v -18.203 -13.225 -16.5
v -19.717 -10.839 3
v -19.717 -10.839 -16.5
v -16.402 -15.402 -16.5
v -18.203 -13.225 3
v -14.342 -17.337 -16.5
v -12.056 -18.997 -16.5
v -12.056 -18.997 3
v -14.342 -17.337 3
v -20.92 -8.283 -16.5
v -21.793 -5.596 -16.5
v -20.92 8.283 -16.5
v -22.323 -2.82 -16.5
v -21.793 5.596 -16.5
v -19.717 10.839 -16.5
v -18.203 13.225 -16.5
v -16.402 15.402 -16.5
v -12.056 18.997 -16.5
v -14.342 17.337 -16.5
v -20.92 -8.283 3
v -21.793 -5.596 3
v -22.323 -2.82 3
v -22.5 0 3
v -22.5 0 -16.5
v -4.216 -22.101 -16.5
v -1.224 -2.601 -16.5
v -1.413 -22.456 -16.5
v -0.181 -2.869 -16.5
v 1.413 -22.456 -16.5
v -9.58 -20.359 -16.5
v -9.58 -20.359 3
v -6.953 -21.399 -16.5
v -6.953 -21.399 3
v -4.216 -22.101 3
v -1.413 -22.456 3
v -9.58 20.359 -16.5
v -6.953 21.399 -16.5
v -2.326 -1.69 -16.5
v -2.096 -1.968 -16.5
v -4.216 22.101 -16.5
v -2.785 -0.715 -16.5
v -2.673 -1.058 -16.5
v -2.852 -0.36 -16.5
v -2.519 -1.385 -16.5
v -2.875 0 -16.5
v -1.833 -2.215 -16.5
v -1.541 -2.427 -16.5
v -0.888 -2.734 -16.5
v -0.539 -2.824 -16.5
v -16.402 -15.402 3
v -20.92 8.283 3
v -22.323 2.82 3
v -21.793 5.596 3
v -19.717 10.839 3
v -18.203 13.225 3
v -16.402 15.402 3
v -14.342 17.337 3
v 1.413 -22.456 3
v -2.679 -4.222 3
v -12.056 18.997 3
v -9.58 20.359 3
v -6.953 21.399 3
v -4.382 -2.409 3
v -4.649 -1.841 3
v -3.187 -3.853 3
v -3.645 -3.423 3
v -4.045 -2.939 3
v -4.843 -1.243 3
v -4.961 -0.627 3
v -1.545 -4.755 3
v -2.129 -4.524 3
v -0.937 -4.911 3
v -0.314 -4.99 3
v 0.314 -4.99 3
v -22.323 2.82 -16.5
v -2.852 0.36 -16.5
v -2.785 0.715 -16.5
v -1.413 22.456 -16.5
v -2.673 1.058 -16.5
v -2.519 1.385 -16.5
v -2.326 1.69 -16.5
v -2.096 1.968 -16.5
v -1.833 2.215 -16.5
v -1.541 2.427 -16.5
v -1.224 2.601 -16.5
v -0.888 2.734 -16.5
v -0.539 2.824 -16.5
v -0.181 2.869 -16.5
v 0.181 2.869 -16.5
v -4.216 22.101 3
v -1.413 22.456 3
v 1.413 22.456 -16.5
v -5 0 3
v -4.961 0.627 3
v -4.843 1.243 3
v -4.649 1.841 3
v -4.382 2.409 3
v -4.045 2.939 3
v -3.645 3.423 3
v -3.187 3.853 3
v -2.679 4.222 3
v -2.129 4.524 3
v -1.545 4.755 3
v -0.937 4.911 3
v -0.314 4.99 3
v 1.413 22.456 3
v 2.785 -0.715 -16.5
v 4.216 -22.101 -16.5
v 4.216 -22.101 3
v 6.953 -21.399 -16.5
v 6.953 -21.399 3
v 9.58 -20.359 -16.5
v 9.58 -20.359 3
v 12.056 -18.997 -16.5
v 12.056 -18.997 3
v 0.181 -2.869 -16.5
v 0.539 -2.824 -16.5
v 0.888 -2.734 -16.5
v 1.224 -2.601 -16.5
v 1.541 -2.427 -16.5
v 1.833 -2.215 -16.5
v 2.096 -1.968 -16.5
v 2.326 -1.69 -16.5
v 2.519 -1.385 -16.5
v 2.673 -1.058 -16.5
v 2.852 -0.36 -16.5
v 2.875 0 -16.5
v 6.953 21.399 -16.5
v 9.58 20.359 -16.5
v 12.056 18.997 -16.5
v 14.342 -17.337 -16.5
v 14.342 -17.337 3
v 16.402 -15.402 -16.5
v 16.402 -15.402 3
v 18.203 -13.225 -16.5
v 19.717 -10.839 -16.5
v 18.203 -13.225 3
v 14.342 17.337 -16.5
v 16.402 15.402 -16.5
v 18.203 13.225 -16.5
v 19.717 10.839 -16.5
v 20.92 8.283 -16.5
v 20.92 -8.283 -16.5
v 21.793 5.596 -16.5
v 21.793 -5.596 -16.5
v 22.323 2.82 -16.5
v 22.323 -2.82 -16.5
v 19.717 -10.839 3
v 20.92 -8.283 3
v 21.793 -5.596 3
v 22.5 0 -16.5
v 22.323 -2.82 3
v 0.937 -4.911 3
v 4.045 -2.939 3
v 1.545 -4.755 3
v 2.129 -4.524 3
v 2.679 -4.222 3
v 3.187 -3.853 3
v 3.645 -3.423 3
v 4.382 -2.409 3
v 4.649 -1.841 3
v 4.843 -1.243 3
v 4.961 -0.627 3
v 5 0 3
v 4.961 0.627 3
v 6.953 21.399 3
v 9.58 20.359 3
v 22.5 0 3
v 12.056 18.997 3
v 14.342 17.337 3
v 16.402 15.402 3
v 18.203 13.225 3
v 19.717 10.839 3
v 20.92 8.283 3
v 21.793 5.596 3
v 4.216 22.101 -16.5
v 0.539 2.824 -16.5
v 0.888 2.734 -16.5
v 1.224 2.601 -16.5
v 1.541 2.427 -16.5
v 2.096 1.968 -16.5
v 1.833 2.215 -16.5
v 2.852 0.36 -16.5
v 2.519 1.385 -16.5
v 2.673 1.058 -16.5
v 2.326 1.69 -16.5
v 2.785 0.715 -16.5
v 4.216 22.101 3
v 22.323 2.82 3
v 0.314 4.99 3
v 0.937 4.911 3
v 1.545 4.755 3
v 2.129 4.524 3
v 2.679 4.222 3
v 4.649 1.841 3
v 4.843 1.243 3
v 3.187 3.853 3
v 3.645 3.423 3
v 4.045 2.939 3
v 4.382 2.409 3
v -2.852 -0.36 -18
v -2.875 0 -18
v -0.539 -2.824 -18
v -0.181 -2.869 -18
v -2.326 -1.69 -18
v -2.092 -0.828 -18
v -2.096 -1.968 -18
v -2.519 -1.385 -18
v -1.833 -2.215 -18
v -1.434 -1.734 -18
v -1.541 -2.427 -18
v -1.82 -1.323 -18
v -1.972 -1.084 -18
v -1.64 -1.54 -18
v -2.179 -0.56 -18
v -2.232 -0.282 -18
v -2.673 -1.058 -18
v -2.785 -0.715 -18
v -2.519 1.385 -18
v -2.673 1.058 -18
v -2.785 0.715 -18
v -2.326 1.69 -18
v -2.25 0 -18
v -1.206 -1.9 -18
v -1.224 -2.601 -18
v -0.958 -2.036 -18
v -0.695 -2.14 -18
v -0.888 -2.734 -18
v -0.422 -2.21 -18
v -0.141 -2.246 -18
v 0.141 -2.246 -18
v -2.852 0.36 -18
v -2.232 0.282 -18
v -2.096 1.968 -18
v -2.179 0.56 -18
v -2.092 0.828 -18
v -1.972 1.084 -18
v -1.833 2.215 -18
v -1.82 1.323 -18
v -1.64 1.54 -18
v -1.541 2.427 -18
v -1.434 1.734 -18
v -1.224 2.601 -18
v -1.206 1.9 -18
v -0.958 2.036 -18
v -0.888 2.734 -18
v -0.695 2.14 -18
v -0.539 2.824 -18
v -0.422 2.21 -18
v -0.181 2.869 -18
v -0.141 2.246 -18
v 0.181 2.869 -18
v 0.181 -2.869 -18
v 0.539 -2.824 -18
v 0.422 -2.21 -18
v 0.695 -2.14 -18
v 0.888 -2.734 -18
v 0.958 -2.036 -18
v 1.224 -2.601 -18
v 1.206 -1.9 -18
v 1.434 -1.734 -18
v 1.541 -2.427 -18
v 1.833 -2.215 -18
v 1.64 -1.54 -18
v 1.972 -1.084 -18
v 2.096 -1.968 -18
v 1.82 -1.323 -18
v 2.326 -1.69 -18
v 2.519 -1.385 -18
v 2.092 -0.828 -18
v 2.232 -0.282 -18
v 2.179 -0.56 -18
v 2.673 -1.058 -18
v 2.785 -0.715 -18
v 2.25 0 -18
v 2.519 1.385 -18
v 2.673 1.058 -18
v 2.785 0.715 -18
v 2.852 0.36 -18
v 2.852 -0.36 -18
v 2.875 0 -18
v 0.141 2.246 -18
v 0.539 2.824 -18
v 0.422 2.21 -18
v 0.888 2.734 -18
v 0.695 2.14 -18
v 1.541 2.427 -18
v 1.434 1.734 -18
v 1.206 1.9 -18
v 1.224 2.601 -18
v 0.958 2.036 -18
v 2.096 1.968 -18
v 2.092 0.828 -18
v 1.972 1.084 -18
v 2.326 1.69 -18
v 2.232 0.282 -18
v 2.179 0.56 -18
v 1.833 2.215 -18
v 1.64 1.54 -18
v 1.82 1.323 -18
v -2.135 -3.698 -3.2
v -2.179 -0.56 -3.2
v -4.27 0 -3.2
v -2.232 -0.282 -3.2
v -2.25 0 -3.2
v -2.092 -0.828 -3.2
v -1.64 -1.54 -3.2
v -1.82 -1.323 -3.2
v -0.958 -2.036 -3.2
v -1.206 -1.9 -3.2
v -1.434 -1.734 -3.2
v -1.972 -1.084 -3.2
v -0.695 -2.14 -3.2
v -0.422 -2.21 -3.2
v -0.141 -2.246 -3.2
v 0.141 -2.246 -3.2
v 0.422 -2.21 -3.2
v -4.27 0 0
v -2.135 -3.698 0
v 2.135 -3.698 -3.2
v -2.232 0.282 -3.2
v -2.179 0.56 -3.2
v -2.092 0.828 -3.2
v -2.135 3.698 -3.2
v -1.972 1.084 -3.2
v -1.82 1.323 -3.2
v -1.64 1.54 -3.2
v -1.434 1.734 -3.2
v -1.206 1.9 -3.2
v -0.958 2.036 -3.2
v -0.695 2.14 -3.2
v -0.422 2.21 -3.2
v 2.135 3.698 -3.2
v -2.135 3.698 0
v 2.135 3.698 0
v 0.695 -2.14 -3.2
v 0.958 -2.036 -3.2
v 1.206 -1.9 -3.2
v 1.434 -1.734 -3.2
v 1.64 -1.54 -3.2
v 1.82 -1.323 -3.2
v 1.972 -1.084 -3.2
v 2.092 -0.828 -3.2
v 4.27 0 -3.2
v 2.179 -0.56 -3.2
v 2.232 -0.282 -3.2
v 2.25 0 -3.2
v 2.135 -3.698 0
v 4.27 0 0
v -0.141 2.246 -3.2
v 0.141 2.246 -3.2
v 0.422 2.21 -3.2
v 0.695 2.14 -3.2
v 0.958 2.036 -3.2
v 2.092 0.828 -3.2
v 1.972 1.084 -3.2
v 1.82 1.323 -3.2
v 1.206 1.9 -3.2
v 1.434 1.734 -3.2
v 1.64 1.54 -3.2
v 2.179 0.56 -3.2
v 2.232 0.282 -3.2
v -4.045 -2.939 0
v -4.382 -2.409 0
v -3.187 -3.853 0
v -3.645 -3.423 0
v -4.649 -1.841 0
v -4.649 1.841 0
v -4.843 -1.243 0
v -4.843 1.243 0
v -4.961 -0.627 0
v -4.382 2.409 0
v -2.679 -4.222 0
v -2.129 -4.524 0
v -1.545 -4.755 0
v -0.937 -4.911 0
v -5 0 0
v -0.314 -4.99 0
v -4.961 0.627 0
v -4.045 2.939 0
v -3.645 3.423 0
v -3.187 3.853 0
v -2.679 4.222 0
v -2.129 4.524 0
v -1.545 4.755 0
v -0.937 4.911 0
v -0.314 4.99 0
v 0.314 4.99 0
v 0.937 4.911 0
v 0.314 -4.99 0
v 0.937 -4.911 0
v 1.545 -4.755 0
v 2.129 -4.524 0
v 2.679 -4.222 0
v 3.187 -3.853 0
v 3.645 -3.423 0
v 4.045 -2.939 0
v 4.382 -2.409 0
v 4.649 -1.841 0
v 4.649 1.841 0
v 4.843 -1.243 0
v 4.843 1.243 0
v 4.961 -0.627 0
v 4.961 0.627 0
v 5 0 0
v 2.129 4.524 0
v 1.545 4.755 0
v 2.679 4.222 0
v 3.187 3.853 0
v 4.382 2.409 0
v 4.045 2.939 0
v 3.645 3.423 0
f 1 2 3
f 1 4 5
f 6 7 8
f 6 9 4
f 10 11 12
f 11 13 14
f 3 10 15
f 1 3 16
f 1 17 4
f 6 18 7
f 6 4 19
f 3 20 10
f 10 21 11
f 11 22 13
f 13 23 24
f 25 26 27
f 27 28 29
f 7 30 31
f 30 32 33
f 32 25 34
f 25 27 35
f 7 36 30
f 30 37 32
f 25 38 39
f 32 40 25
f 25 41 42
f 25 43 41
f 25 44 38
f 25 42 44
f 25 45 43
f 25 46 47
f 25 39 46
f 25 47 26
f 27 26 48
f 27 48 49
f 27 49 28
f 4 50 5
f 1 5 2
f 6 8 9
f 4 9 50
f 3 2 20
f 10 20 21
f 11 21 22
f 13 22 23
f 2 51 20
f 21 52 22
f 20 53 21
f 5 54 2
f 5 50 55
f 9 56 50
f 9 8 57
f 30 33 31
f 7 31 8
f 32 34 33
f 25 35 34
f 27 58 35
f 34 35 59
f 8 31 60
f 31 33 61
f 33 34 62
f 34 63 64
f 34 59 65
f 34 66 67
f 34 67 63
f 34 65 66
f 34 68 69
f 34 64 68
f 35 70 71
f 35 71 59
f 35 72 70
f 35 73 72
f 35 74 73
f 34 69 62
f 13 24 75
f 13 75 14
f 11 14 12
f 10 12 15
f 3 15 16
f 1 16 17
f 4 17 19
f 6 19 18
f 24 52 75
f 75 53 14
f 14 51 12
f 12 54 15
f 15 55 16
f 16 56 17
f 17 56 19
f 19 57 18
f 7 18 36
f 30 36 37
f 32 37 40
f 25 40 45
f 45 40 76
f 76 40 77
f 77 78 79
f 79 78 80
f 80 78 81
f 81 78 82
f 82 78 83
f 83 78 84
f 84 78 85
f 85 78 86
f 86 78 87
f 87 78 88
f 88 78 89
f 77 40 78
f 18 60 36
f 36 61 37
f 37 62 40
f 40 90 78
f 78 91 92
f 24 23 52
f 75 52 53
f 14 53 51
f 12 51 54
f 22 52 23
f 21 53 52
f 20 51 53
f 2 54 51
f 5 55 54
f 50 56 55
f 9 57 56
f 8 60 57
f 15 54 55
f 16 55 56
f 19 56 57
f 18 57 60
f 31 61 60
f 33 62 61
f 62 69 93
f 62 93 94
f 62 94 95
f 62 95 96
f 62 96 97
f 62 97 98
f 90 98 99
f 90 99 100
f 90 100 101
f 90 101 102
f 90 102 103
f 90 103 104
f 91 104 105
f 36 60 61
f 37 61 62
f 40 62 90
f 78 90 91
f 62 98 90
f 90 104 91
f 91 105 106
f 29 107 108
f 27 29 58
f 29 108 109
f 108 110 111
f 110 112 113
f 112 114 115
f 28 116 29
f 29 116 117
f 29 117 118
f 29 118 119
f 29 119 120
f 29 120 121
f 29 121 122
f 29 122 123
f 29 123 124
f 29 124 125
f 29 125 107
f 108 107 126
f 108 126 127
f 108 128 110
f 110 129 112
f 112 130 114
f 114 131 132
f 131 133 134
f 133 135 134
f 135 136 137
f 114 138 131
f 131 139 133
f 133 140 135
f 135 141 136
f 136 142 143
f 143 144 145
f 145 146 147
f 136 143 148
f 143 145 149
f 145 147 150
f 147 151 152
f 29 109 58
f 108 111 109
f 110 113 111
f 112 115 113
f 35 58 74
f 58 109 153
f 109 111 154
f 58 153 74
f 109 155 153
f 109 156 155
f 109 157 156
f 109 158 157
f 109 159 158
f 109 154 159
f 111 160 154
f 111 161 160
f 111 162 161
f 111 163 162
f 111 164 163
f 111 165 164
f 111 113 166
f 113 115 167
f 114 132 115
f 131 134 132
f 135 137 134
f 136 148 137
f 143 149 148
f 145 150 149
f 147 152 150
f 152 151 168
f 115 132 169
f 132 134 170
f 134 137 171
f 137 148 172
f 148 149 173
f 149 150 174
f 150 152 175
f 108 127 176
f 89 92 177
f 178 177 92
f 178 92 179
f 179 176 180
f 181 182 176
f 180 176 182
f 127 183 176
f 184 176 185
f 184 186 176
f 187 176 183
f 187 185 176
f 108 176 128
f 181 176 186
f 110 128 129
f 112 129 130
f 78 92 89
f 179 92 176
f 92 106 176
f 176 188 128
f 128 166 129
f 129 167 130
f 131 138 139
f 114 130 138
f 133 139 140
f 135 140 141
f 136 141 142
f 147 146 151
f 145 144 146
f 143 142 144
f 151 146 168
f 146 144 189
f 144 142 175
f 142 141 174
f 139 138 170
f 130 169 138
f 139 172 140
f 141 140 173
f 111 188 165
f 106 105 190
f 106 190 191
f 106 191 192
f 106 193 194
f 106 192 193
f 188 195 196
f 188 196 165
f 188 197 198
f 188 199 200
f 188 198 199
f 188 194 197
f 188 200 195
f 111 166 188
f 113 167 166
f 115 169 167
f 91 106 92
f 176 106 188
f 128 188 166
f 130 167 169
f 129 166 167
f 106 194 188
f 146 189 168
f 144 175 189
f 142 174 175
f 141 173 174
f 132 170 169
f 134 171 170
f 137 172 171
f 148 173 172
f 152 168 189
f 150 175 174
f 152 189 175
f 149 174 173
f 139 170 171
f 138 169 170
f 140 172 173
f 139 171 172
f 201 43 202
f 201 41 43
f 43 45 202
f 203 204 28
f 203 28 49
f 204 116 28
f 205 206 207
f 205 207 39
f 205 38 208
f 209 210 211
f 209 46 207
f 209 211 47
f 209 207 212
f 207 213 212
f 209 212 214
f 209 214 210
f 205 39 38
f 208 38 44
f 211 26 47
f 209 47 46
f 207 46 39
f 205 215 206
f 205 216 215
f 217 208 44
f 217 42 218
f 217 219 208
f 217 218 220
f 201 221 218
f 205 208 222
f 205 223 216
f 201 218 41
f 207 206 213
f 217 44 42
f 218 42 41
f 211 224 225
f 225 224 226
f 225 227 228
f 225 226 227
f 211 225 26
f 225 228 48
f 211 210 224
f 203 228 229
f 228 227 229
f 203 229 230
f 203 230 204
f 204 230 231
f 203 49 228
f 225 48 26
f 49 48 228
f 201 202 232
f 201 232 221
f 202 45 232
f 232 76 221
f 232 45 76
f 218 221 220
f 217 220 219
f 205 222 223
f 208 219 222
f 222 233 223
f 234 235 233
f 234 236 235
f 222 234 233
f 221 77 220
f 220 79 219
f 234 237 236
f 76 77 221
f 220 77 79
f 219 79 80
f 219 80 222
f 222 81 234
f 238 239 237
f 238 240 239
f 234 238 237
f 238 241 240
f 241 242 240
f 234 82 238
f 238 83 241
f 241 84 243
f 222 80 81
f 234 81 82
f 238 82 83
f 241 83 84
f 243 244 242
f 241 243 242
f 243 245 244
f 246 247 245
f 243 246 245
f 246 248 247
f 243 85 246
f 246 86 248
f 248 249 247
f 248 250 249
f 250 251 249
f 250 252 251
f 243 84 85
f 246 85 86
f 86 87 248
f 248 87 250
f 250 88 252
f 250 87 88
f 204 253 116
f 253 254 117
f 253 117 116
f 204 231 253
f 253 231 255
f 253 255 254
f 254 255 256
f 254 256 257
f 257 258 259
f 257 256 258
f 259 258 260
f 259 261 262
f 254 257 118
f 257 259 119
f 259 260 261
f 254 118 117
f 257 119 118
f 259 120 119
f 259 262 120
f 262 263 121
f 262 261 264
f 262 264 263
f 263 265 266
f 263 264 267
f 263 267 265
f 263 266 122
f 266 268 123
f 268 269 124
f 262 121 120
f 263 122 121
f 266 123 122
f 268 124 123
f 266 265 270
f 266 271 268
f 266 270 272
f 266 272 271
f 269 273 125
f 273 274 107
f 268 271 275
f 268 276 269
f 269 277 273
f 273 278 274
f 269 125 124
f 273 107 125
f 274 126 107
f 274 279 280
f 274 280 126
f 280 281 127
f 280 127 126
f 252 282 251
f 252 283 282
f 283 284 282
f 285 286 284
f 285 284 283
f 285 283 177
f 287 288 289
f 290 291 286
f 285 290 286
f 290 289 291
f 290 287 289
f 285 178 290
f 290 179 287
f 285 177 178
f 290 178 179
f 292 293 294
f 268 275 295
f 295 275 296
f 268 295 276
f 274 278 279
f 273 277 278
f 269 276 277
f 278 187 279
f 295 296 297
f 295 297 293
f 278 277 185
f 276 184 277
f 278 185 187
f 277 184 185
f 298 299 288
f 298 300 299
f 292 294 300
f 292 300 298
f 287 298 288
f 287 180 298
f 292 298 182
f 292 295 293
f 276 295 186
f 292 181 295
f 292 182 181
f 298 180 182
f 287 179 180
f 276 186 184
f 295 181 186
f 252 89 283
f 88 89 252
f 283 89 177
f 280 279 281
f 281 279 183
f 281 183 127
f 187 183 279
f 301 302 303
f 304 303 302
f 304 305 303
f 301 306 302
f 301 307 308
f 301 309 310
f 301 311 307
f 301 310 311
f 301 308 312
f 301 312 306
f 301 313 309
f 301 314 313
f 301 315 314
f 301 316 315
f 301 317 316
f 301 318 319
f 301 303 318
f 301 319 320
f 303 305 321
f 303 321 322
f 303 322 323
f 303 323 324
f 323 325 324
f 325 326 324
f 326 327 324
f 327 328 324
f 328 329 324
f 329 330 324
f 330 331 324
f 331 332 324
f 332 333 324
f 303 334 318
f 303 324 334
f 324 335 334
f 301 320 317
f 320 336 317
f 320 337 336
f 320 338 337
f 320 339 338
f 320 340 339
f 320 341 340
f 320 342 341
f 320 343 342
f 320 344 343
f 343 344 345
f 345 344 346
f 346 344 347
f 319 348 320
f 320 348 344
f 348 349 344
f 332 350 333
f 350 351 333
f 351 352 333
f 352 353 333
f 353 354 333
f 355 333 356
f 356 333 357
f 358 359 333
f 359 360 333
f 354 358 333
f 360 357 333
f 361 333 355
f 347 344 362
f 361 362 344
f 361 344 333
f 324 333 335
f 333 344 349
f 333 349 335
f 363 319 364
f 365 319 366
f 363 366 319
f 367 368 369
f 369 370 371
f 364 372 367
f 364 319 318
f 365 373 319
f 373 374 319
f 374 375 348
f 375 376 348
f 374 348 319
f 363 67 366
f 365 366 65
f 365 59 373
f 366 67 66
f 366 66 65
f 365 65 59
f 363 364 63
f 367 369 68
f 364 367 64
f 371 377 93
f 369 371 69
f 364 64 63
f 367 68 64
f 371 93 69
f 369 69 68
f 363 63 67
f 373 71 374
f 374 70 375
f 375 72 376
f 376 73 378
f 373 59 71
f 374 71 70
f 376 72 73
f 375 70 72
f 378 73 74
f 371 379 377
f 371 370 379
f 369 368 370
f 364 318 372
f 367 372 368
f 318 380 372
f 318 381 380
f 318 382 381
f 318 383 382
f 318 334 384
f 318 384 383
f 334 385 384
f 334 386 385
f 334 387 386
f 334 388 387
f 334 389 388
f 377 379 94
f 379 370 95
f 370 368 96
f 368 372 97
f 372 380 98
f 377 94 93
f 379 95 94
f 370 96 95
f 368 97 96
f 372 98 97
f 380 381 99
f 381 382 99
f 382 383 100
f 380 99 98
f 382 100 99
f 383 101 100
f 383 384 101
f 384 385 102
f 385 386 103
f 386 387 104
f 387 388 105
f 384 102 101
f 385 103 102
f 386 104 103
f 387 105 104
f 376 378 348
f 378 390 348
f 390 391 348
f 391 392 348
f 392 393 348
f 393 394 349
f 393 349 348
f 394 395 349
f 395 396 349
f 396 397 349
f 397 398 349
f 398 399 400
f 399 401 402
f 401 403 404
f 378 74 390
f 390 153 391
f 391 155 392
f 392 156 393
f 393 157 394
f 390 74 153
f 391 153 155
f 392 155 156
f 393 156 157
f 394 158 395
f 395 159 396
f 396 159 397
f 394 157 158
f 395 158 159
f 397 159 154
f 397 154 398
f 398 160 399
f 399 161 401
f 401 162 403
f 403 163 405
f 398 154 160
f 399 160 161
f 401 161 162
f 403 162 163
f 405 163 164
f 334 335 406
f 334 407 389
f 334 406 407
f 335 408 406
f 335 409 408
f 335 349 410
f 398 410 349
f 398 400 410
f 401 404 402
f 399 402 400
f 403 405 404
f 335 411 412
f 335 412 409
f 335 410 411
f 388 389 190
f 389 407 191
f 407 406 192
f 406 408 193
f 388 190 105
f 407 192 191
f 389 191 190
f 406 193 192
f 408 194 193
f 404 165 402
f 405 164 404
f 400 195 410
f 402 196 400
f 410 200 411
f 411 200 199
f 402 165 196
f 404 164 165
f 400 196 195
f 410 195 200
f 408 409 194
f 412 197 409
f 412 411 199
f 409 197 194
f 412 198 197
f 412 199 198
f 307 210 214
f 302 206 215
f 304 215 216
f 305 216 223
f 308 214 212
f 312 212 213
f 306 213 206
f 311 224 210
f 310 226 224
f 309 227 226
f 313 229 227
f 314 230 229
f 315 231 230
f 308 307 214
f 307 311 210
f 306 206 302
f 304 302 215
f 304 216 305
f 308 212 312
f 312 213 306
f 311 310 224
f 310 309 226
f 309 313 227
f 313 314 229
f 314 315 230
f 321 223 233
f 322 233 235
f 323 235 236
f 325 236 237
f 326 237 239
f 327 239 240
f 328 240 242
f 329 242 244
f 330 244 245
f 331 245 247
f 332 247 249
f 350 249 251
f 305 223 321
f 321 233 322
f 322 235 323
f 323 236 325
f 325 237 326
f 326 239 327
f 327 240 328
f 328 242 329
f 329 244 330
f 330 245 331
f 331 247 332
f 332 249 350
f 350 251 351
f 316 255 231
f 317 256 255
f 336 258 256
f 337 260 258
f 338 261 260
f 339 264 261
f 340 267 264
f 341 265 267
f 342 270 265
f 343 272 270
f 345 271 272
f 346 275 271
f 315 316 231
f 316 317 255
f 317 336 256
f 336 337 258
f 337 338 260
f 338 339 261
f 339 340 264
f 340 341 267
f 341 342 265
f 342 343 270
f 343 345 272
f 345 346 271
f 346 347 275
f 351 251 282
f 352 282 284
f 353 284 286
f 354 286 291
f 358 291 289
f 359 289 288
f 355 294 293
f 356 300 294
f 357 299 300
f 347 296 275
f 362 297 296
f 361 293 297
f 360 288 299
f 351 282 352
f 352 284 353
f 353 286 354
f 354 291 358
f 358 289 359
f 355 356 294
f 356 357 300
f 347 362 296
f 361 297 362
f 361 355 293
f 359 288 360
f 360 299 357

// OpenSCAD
$fn = 50;

difference() {
	union() {
		translate(v = [0, 0, -16.5]) {
			cylinder(h = 19.5, r = 22.5);
		}
		#translate(v = [0, 0, -18.0]) {
			cylinder(h = 18, r = 2.875);
		}
	}
	union() {
		translate(v = [0, 0, 0]) {
			rotate(a = [0, 0, 0]) {
				difference() {
					union() {
						translate(v = [0, 0, -3.2]) {
							linear_extrude(height = 3.2) {
								polygon(points = [[4.2698, 0.0], [2.1349000000000005, 3.697755269078796], [-2.134899999999999, 3.6977552690787965], [-4.2698, 5.228996902999369e-16], [-2.134900000000002, -3.6977552690787956], [2.1348999999999974, -3.697755269078798]]);
							}
						}
					}
					union();
				}
			}
		}
		#cylinder(h = 3, r = 5.0);
		#translate(v = [0, 0, -100.0]) {
			cylinder(h = 200, r = 2.25);
		}
	}
}
